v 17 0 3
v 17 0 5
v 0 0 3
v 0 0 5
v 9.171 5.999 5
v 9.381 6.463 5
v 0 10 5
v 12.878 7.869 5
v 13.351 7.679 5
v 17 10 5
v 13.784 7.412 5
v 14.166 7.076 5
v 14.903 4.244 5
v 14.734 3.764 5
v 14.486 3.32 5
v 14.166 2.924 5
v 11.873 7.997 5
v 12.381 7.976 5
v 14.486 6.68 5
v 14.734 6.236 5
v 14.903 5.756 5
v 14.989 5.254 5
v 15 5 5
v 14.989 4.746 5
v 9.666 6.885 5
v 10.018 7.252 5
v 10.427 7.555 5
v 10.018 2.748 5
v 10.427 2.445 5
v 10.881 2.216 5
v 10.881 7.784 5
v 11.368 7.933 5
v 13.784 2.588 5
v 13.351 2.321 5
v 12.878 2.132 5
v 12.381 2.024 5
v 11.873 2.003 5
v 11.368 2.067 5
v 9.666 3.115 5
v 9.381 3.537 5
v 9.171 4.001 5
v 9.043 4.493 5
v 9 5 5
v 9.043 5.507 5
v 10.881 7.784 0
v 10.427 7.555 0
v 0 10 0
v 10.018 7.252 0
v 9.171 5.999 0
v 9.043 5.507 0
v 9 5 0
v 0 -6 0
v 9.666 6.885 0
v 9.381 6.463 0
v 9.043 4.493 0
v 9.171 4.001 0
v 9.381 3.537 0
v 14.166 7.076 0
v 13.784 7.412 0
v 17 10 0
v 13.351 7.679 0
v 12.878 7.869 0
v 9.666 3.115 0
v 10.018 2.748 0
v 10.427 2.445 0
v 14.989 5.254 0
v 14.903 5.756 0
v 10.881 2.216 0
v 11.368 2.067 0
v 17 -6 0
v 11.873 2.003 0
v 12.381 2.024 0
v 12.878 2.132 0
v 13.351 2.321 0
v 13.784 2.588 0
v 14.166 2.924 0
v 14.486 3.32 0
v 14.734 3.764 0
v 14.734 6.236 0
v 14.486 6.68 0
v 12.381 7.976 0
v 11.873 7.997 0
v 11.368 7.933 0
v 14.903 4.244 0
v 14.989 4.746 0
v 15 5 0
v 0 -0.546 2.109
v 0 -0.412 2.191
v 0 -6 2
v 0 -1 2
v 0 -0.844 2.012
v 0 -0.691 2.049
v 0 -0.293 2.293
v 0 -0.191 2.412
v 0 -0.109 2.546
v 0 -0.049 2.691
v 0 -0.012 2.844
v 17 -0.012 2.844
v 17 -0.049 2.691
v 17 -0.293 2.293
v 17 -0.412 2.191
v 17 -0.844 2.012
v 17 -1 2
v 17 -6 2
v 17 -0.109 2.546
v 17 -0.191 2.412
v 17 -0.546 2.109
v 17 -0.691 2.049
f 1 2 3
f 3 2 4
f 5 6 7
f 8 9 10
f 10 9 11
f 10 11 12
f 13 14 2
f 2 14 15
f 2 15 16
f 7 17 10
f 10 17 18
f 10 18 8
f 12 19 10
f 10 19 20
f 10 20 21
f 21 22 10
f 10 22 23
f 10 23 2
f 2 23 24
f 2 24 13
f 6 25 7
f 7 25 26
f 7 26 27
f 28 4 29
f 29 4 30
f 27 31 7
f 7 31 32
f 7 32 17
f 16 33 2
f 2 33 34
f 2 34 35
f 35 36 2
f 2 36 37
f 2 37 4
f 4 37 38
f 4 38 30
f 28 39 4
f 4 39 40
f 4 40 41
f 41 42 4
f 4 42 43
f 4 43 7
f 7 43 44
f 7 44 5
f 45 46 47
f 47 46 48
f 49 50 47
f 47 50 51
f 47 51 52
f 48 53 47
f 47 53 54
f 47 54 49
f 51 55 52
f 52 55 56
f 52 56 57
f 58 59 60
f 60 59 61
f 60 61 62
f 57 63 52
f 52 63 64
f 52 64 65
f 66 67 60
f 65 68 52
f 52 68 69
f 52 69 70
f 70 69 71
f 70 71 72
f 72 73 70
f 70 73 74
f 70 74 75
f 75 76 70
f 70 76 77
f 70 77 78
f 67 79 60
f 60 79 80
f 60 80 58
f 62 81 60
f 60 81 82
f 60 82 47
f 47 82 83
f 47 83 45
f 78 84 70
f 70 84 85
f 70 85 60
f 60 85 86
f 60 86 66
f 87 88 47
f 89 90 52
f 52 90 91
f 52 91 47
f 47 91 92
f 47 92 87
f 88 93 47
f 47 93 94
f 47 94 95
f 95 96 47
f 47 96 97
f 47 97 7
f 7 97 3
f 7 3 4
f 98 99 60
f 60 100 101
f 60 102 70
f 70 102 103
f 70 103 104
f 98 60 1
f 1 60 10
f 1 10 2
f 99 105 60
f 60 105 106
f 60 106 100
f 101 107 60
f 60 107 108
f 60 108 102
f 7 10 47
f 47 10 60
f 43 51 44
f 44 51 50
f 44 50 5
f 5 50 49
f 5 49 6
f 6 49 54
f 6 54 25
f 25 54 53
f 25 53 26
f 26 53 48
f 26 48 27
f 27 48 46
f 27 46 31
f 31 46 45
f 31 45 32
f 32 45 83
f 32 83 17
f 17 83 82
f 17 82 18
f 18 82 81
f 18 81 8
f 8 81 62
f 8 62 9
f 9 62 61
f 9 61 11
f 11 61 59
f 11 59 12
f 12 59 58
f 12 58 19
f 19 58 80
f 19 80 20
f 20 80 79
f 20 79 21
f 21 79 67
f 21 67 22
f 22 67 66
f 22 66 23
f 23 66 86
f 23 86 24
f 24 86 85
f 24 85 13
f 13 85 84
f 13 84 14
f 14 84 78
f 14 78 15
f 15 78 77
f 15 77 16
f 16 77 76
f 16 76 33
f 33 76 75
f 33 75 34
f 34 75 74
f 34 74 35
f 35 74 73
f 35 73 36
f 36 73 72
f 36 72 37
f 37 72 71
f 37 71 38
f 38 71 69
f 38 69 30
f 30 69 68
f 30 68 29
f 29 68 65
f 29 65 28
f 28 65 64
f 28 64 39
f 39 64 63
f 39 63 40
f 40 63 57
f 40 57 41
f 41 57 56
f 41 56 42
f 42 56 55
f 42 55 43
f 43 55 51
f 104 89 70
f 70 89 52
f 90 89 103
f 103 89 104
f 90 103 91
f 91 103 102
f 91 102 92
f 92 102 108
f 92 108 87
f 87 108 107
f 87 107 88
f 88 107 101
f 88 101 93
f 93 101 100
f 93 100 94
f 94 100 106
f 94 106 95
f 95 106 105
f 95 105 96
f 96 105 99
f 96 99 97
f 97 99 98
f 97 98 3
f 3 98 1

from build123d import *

# Parameters (mm, degrees)
ESQUISSE1_W        = 17
ESQUISSE1_H        = 10
ESQUISSE1_R        = 3
BOSS_EXTRU_1_DEPTH = 5
ESQUISSE2_W        = 17
ESQUISSE2_H        = 6
BOSS_EXTRU_2_DEPTH = 2
CONG_1_R           = 1


with BuildPart() as part:
    # Esquisse1 → Boss.-Extru.1 (new body)
    with BuildSketch(Plane.XY):
        with Locations((8.5, 5)):
            Rectangle(ESQUISSE1_W, ESQUISSE1_H)
        with Locations((12, 5)):
            Circle(ESQUISSE1_R, mode=Mode.SUBTRACT)
    extrude(amount=BOSS_EXTRU_1_DEPTH)

    # Esquisse2 → Boss.-Extru.2 (add)
    with BuildSketch(Plane(origin=(0, 0, 0), x_dir=(-1, 0, 0), z_dir=(0, 0, -1))):
        with Locations((-8.5, -3)):
            Rectangle(ESQUISSE2_W, ESQUISSE2_H)
    extrude(amount=-BOSS_EXTRU_2_DEPTH)

    # Congé1
    cong_1_edges = [part.edges().sort_by_distance(p)[0] for p in [
        (8.5, 0, 2),
    ]]
    fillet(cong_1_edges, radius=CONG_1_R)


solid = part.part
